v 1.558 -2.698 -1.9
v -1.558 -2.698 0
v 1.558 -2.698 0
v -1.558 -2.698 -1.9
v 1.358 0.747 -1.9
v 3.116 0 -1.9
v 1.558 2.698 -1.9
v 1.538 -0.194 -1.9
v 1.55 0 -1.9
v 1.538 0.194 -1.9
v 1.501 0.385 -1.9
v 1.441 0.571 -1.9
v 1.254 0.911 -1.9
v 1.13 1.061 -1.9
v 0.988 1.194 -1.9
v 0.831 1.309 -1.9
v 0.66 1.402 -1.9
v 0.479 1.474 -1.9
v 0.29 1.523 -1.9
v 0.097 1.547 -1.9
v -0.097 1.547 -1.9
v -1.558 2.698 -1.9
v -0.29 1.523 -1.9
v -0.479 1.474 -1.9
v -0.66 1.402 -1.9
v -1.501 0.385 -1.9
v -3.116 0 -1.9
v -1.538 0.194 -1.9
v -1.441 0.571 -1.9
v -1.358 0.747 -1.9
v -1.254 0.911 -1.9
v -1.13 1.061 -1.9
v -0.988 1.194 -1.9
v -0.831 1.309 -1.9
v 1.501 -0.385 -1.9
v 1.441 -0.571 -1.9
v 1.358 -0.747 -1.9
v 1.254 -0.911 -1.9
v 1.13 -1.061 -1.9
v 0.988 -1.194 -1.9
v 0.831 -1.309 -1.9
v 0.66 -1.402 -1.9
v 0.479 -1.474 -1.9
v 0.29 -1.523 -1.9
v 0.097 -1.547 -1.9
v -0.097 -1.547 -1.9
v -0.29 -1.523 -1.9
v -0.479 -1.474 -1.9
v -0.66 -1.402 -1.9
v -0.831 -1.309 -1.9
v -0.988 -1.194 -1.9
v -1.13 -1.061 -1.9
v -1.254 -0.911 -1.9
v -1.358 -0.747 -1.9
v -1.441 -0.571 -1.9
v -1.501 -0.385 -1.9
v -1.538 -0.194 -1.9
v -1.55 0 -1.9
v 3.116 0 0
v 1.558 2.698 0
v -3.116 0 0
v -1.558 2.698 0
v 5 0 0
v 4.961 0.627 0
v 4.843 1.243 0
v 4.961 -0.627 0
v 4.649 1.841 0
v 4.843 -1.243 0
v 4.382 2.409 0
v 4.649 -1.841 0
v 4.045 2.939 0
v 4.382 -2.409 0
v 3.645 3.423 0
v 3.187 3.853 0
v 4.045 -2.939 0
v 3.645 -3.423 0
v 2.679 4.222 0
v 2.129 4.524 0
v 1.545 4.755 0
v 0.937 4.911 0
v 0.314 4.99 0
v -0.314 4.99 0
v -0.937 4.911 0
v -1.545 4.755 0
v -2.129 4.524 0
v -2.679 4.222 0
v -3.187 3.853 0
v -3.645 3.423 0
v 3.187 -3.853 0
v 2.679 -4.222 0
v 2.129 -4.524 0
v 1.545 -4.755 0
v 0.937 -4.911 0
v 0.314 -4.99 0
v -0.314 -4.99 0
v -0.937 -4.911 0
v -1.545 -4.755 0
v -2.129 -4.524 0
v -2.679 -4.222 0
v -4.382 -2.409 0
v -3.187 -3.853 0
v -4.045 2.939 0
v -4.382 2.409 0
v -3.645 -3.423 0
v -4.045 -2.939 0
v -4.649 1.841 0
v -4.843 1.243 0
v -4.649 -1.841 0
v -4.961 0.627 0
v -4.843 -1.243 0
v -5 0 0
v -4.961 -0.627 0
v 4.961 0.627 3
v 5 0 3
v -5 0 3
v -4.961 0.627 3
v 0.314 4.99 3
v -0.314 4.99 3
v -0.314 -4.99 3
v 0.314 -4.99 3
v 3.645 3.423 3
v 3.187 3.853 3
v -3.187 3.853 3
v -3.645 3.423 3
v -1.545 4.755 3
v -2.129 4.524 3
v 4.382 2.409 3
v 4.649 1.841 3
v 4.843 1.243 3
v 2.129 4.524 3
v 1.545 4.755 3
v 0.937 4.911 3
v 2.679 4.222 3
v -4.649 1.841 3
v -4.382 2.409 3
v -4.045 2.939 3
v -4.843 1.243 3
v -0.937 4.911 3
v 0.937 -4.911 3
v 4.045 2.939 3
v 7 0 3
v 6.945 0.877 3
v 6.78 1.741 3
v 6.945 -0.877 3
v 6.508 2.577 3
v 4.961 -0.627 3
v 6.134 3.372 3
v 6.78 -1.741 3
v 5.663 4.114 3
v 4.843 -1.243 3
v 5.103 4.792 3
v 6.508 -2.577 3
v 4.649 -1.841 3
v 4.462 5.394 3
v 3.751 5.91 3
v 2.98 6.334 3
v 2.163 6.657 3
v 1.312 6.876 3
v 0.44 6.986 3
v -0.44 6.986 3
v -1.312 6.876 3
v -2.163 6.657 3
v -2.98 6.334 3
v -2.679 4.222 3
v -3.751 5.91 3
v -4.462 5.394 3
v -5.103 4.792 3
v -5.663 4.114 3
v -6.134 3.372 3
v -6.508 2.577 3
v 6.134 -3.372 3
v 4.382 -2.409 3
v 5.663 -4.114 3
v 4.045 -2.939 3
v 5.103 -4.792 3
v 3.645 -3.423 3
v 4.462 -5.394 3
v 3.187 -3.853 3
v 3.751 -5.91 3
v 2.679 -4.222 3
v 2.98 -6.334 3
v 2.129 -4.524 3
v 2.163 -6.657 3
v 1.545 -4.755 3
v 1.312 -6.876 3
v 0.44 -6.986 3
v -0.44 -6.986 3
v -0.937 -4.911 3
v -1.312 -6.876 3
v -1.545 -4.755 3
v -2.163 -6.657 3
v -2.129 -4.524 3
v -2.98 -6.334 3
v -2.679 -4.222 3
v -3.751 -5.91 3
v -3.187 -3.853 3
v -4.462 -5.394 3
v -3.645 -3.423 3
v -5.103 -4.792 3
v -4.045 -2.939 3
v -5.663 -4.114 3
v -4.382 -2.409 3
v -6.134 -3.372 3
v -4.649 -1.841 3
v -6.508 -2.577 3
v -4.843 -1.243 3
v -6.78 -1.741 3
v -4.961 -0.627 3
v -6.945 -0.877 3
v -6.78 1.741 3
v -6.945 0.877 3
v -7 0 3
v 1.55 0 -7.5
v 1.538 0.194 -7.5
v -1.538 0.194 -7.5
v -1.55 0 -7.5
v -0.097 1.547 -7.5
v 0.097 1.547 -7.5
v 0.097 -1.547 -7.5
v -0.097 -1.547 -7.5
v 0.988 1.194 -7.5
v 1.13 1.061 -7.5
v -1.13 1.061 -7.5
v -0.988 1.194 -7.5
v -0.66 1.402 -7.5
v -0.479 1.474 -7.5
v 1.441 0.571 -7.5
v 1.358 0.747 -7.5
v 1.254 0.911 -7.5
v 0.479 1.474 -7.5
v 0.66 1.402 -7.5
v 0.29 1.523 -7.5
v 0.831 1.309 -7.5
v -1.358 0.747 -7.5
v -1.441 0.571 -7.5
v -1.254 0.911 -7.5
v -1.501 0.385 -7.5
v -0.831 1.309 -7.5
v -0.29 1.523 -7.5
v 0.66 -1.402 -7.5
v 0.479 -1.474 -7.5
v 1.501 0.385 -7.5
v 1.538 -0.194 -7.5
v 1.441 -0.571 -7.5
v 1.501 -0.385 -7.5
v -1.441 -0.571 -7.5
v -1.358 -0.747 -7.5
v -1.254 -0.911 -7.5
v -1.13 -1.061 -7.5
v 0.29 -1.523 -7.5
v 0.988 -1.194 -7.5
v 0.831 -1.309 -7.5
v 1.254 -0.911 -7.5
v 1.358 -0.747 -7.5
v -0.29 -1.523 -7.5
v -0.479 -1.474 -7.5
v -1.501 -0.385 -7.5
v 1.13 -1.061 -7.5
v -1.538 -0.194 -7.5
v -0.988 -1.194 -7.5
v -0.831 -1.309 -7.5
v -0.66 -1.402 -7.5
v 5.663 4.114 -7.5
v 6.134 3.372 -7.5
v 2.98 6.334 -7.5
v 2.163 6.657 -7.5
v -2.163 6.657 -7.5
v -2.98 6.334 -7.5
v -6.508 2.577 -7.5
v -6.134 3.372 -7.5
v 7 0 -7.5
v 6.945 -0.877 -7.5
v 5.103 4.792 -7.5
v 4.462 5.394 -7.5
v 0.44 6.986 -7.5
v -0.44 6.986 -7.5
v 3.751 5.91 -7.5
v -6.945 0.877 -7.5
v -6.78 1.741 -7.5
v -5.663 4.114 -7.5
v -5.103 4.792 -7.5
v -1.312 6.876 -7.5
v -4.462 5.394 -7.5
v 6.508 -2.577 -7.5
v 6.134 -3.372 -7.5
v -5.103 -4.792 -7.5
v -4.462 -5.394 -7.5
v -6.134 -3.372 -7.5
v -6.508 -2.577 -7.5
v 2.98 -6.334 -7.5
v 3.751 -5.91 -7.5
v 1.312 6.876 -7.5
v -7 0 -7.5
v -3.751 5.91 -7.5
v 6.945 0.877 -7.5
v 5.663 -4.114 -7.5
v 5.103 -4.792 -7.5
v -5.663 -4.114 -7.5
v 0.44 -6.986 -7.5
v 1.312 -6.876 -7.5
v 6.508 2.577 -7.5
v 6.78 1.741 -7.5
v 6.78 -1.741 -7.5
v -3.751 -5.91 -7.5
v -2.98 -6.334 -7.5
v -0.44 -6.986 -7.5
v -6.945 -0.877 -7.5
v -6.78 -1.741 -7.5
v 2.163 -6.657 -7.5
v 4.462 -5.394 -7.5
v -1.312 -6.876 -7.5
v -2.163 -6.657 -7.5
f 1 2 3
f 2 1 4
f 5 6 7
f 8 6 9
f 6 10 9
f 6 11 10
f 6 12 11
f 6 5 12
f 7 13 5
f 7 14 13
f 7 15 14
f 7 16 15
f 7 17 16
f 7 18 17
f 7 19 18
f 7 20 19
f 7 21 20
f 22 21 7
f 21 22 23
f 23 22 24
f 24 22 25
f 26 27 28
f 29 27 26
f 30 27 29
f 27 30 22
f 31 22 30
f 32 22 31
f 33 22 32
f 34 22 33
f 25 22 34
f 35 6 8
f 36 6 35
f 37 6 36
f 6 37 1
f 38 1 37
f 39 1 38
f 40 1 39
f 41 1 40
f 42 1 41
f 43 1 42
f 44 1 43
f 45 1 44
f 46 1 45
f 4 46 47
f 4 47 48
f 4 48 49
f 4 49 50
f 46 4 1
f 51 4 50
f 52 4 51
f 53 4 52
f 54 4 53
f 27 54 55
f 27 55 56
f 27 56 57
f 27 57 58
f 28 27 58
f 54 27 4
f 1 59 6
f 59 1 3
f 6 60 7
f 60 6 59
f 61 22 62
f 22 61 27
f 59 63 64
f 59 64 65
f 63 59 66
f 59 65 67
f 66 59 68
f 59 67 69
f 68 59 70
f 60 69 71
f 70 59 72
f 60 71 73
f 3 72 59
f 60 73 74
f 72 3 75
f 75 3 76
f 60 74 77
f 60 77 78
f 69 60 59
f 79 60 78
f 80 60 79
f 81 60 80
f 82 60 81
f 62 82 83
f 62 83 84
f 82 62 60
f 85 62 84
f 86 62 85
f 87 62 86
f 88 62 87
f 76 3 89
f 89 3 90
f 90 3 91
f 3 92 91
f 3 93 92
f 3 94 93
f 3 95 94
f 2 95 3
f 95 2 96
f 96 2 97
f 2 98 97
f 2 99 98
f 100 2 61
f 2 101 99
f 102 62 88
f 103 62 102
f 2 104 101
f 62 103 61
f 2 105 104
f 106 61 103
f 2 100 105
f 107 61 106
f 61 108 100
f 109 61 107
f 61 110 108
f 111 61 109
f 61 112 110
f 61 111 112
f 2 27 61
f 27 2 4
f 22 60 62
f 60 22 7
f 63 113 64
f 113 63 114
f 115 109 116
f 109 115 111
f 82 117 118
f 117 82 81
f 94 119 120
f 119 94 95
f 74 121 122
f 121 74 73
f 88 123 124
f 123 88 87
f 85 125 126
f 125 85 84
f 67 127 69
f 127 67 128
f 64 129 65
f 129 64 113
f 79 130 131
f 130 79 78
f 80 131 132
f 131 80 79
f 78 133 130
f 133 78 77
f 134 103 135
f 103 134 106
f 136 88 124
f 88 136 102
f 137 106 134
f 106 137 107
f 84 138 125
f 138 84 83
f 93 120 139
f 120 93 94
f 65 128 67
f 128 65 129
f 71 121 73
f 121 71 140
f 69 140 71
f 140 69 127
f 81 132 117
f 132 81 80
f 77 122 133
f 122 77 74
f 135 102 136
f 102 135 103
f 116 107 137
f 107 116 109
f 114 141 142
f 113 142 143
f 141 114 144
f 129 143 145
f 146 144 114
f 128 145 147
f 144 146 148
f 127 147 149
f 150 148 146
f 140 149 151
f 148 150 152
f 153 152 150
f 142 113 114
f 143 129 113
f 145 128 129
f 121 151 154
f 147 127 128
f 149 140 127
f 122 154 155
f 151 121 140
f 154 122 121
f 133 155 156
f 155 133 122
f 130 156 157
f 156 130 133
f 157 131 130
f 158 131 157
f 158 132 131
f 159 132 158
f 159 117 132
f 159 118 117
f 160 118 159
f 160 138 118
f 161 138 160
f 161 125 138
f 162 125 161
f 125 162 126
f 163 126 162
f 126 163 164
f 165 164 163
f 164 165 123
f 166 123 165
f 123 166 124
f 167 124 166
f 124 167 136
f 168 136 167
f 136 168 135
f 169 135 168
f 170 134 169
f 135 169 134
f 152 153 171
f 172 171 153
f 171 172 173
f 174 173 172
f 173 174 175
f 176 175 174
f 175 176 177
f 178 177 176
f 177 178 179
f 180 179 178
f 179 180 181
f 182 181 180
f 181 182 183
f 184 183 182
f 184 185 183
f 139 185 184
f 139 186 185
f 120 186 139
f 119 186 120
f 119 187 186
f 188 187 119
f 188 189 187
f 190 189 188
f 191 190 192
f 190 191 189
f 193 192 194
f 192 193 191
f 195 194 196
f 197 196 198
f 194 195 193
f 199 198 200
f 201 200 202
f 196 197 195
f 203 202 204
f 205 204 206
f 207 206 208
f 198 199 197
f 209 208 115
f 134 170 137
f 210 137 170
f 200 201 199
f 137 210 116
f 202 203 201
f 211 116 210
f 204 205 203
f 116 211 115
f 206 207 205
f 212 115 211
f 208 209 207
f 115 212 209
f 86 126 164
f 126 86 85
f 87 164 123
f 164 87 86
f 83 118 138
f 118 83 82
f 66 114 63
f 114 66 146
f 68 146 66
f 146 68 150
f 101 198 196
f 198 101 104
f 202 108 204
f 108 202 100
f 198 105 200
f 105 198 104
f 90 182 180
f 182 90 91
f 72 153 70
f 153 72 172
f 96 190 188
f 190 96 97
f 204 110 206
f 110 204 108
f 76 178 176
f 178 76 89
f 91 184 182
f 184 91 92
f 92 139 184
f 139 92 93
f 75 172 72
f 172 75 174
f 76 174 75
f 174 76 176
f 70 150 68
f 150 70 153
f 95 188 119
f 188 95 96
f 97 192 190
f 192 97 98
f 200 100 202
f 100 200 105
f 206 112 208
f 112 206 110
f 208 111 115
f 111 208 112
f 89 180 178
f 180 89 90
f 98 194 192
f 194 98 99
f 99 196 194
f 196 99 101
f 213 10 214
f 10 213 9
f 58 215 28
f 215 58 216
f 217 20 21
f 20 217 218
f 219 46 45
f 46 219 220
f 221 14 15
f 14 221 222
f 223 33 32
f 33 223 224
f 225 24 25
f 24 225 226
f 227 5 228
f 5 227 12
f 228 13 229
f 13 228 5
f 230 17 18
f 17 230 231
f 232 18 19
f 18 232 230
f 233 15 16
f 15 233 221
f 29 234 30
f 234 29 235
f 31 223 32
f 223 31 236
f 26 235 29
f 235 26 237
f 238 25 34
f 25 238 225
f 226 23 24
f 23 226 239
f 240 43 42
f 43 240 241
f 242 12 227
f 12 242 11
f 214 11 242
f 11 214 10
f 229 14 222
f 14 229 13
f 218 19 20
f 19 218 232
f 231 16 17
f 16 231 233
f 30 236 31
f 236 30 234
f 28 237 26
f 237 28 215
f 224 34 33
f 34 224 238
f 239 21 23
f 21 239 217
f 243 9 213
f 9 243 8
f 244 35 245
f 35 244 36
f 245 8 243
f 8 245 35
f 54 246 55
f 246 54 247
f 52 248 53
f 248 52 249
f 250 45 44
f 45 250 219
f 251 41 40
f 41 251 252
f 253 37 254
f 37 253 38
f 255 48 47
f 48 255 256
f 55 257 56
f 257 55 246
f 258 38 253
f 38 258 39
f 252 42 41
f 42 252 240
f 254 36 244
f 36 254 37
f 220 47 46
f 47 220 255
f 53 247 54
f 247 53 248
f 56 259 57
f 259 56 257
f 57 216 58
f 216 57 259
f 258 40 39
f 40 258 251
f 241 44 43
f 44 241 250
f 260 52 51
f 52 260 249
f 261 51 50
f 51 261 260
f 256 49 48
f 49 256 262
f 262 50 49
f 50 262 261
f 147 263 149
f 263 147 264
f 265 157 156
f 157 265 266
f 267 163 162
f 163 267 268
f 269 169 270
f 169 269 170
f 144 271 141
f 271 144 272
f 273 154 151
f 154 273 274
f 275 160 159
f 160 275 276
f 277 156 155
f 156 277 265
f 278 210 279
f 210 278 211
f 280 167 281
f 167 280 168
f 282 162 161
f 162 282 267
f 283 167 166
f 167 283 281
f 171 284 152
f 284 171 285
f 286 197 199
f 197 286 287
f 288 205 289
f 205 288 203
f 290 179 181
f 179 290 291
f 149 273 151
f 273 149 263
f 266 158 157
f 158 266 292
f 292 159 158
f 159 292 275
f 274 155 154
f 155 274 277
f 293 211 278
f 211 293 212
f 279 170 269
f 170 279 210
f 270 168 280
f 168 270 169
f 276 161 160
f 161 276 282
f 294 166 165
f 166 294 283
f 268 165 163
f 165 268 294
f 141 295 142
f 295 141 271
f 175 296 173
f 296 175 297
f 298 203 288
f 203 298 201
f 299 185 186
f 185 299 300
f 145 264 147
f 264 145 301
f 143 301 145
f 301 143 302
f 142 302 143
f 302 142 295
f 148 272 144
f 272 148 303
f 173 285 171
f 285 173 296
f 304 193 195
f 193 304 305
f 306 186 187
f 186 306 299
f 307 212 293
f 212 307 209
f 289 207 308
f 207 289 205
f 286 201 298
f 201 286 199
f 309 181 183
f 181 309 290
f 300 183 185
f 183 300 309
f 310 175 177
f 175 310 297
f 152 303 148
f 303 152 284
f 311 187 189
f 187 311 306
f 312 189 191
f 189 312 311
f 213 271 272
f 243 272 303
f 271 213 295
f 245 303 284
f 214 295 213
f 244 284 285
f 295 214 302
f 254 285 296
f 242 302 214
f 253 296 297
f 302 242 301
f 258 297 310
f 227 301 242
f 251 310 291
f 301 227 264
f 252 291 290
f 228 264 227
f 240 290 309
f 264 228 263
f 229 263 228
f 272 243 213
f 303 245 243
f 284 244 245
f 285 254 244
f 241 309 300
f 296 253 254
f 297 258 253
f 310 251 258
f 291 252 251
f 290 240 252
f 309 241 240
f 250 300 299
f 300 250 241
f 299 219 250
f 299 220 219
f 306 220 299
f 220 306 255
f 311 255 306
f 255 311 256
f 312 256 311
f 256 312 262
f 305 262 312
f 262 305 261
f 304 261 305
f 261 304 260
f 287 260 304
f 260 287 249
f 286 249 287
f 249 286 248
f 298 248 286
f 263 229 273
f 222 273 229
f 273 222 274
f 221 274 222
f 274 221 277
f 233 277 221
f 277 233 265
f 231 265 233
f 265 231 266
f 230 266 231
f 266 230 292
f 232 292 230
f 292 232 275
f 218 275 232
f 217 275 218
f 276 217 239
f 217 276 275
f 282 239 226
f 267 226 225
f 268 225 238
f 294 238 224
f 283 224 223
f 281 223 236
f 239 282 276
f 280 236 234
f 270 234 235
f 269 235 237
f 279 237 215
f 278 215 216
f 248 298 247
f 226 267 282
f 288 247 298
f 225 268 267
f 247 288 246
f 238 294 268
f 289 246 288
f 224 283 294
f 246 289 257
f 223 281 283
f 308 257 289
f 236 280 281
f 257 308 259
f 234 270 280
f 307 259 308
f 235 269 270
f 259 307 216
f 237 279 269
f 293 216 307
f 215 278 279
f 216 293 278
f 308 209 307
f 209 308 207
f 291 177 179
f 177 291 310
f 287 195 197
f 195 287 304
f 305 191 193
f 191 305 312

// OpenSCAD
$fn = 50;

difference() {
	union() {
		translate(v = [0, 0, -7.5]) {
			cylinder(h = 10.5, r = 7.0);
		}
	}
	union() {
		translate(v = [0, 0, 0]) {
			rotate(a = [0, 0, 0]) {
				difference() {
					union() {
						translate(v = [0, 0, -1.9]) {
							linear_extrude(height = 1.9) {
								polygon(points = [[3.1158, 0.0], [1.5579000000000005, 2.698361953111554], [-1.5578999999999994, 2.6983619531115544], [-3.1158, 3.815754496783323e-16], [-1.5579000000000014, -2.6983619531115535], [1.557899999999998, -2.6983619531115552]]);
							}
						}
					}
					union();
				}
			}
		}
		#cylinder(h = 3, r = 5.0);
		#translate(v = [0, 0, -100.0]) {
			cylinder(h = 200, r = 1.55);
		}
	}
}
